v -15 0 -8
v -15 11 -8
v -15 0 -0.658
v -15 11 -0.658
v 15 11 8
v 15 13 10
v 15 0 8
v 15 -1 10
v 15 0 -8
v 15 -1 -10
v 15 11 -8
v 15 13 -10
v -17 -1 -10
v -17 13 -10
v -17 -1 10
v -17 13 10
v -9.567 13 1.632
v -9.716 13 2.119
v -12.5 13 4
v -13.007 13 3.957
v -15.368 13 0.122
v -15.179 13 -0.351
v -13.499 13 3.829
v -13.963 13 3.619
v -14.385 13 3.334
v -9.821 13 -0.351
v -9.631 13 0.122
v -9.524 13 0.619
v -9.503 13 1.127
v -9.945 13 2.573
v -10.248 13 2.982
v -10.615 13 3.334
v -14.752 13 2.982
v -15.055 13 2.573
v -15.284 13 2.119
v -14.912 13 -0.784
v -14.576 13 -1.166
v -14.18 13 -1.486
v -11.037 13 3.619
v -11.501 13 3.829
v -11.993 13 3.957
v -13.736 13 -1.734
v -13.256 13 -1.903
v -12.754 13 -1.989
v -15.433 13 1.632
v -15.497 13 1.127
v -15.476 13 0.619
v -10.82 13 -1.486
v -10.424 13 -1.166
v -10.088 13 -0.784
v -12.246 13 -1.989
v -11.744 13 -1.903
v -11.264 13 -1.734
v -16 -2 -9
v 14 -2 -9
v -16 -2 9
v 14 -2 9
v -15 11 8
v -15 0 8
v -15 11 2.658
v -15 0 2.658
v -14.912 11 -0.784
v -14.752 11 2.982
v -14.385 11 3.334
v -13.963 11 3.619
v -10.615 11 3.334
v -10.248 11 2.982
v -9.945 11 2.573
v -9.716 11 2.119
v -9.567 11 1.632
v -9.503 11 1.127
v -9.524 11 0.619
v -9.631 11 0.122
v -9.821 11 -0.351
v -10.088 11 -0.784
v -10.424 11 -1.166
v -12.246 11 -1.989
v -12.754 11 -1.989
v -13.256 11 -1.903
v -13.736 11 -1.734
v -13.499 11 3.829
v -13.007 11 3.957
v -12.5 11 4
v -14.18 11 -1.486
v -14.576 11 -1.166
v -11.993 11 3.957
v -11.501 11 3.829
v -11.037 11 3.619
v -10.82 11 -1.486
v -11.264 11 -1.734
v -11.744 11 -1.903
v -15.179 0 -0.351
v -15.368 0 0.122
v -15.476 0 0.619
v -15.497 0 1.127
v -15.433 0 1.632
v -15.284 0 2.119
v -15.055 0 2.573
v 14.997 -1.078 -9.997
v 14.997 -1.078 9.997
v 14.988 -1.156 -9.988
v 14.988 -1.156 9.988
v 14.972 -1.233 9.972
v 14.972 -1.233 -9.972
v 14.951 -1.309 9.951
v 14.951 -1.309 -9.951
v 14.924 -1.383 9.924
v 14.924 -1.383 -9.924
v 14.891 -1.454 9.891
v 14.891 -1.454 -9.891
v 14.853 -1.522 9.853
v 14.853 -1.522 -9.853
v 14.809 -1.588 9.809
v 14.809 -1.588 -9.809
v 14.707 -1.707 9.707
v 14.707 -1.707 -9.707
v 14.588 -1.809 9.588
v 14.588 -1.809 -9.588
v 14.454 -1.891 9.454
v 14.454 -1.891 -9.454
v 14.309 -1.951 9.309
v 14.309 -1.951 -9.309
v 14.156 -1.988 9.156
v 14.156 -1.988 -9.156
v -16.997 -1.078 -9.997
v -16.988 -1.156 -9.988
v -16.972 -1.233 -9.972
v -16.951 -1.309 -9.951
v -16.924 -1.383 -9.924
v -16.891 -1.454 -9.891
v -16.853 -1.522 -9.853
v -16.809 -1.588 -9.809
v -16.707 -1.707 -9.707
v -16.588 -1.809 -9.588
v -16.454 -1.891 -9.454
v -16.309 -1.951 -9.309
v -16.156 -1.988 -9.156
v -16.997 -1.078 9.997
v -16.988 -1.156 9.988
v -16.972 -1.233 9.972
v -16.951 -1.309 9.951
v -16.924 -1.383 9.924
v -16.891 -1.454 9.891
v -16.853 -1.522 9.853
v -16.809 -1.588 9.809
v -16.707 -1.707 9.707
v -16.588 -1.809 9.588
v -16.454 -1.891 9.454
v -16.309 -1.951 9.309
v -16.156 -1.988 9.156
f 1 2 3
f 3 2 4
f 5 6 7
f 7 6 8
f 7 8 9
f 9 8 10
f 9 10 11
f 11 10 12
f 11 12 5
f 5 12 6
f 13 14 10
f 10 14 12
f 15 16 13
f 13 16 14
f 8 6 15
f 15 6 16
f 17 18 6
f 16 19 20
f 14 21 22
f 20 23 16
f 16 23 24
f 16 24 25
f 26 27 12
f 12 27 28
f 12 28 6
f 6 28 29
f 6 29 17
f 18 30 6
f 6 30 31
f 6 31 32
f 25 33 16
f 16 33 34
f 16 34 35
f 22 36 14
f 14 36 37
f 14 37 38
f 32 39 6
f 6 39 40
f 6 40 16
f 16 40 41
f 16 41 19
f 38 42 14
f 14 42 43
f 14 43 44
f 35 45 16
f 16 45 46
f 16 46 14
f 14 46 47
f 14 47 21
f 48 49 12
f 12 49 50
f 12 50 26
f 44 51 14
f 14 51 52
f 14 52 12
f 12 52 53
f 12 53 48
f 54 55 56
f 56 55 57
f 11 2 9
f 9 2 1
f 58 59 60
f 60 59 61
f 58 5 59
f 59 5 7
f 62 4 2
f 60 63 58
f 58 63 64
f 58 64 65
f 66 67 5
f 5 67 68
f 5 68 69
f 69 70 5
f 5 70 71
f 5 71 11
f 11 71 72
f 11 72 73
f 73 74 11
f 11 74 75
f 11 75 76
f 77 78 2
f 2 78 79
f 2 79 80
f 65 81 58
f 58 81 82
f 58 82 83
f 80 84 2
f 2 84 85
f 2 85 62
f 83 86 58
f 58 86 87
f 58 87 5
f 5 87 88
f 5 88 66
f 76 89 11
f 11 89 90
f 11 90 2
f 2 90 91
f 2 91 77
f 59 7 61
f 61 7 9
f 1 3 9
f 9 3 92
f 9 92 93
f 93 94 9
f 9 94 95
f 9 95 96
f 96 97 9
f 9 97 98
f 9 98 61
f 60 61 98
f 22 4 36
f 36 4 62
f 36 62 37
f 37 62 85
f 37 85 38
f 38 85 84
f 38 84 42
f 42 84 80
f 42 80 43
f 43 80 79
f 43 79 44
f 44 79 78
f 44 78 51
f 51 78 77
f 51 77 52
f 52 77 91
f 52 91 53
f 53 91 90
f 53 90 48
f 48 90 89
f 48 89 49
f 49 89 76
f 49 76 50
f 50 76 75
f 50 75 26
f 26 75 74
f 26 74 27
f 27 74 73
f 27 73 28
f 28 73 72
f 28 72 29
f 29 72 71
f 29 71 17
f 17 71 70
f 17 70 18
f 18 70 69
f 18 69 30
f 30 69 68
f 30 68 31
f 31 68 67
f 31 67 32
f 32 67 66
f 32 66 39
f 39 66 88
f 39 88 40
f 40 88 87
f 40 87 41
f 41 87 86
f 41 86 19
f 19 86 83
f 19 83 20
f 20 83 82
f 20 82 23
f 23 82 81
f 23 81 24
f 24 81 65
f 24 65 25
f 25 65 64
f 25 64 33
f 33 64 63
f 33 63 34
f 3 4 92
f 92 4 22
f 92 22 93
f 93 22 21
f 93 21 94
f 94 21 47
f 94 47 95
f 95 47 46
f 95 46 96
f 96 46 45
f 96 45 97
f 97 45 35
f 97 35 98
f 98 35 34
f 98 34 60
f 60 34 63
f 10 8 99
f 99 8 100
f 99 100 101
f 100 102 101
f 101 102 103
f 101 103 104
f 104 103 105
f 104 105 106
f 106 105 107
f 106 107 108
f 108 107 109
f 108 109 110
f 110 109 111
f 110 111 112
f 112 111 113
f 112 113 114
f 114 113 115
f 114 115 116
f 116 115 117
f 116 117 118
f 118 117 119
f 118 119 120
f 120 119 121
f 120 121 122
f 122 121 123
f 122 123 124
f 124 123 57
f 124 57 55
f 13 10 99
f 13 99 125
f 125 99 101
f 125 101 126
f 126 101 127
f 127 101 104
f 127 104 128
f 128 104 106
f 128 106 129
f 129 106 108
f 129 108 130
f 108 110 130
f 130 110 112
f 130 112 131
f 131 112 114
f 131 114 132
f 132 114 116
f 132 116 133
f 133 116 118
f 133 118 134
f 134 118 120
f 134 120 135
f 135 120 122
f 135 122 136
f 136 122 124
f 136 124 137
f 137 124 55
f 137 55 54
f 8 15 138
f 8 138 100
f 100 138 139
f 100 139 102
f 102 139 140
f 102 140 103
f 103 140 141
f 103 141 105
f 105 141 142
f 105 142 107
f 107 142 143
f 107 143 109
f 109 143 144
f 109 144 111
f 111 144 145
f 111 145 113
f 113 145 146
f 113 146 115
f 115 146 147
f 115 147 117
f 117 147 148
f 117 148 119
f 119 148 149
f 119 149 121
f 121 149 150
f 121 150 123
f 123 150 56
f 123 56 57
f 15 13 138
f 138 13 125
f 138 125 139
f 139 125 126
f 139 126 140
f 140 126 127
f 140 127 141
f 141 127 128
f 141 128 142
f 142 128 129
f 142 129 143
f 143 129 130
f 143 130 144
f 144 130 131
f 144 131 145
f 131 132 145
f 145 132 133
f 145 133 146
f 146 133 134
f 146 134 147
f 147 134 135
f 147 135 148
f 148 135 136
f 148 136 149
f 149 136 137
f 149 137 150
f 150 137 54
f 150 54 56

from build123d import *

# Parameters (mm, degrees)
SKETCH1_W           = 30
SKETCH1_H           = 16
BOSS_EXTRUDE1_DEPTH = 11
SHELL1_T            = 2
CUT_EXTRUDE3_REACH  = 26.779
SKETCH4_R           = 3
FILLET1_R           = 1


with BuildPart() as part:
    # Sketch1 → Boss-Extrude1 (new body)
    with BuildSketch(Plane(origin=(0, 0, 0), x_dir=(1, 0, 0), z_dir=(0, 1, 0))):
        Rectangle(SKETCH1_W, SKETCH1_H)
    extrude(amount=BOSS_EXTRUDE1_DEPTH)

    # Shell1
    shell1_openings = [part.faces().sort_by_distance(p)[0] for p in [
        (15, 5.5, 0),
    ]]
    offset(amount=SHELL1_T, openings=shell1_openings, kind=Kind.INTERSECTION)

    # Cut-Extrude3: up to this face of the body (flat: up to its plane)
    cut_extrude3_end = Plane(part.part.faces().sort_by_distance((0, 0, 0))[0])
    # Sketch4 → Cut-Extrude3 (cut, up to the picked face)
    with BuildSketch(Plane(origin=(0, 13, 0), x_dir=(1, 0, 0), z_dir=(0, 1, 0)), mode=Mode.PRIVATE) as cut_extrude3_sk1:
        with Locations(Location((-12.5, -1, 0), (0, 0, 270))):
            Circle(SKETCH4_R)
    cut_extrude3_tool1 = split(extrude(cut_extrude3_sk1.sketch, amount=-CUT_EXTRUDE3_REACH, mode=Mode.PRIVATE), bisect_by=cut_extrude3_end, keep=Keep.BOTH, mode=Mode.PRIVATE)
    add(cut_extrude3_tool1.solids().sort_by(Axis((-12.5, 13, 1), (0, -1, 0)))[0], mode=Mode.SUBTRACT)

    # Fillet1
    fillet1_edges = [part.edges().sort_by_distance(p)[0] for p in [
        (-1, -2, 10),
        (-17, -2, 0),
        (-1, -2, -10),
        (15, -2, 0),
    ]]
    fillet(fillet1_edges, radius=FILLET1_R)


solid = part.part
